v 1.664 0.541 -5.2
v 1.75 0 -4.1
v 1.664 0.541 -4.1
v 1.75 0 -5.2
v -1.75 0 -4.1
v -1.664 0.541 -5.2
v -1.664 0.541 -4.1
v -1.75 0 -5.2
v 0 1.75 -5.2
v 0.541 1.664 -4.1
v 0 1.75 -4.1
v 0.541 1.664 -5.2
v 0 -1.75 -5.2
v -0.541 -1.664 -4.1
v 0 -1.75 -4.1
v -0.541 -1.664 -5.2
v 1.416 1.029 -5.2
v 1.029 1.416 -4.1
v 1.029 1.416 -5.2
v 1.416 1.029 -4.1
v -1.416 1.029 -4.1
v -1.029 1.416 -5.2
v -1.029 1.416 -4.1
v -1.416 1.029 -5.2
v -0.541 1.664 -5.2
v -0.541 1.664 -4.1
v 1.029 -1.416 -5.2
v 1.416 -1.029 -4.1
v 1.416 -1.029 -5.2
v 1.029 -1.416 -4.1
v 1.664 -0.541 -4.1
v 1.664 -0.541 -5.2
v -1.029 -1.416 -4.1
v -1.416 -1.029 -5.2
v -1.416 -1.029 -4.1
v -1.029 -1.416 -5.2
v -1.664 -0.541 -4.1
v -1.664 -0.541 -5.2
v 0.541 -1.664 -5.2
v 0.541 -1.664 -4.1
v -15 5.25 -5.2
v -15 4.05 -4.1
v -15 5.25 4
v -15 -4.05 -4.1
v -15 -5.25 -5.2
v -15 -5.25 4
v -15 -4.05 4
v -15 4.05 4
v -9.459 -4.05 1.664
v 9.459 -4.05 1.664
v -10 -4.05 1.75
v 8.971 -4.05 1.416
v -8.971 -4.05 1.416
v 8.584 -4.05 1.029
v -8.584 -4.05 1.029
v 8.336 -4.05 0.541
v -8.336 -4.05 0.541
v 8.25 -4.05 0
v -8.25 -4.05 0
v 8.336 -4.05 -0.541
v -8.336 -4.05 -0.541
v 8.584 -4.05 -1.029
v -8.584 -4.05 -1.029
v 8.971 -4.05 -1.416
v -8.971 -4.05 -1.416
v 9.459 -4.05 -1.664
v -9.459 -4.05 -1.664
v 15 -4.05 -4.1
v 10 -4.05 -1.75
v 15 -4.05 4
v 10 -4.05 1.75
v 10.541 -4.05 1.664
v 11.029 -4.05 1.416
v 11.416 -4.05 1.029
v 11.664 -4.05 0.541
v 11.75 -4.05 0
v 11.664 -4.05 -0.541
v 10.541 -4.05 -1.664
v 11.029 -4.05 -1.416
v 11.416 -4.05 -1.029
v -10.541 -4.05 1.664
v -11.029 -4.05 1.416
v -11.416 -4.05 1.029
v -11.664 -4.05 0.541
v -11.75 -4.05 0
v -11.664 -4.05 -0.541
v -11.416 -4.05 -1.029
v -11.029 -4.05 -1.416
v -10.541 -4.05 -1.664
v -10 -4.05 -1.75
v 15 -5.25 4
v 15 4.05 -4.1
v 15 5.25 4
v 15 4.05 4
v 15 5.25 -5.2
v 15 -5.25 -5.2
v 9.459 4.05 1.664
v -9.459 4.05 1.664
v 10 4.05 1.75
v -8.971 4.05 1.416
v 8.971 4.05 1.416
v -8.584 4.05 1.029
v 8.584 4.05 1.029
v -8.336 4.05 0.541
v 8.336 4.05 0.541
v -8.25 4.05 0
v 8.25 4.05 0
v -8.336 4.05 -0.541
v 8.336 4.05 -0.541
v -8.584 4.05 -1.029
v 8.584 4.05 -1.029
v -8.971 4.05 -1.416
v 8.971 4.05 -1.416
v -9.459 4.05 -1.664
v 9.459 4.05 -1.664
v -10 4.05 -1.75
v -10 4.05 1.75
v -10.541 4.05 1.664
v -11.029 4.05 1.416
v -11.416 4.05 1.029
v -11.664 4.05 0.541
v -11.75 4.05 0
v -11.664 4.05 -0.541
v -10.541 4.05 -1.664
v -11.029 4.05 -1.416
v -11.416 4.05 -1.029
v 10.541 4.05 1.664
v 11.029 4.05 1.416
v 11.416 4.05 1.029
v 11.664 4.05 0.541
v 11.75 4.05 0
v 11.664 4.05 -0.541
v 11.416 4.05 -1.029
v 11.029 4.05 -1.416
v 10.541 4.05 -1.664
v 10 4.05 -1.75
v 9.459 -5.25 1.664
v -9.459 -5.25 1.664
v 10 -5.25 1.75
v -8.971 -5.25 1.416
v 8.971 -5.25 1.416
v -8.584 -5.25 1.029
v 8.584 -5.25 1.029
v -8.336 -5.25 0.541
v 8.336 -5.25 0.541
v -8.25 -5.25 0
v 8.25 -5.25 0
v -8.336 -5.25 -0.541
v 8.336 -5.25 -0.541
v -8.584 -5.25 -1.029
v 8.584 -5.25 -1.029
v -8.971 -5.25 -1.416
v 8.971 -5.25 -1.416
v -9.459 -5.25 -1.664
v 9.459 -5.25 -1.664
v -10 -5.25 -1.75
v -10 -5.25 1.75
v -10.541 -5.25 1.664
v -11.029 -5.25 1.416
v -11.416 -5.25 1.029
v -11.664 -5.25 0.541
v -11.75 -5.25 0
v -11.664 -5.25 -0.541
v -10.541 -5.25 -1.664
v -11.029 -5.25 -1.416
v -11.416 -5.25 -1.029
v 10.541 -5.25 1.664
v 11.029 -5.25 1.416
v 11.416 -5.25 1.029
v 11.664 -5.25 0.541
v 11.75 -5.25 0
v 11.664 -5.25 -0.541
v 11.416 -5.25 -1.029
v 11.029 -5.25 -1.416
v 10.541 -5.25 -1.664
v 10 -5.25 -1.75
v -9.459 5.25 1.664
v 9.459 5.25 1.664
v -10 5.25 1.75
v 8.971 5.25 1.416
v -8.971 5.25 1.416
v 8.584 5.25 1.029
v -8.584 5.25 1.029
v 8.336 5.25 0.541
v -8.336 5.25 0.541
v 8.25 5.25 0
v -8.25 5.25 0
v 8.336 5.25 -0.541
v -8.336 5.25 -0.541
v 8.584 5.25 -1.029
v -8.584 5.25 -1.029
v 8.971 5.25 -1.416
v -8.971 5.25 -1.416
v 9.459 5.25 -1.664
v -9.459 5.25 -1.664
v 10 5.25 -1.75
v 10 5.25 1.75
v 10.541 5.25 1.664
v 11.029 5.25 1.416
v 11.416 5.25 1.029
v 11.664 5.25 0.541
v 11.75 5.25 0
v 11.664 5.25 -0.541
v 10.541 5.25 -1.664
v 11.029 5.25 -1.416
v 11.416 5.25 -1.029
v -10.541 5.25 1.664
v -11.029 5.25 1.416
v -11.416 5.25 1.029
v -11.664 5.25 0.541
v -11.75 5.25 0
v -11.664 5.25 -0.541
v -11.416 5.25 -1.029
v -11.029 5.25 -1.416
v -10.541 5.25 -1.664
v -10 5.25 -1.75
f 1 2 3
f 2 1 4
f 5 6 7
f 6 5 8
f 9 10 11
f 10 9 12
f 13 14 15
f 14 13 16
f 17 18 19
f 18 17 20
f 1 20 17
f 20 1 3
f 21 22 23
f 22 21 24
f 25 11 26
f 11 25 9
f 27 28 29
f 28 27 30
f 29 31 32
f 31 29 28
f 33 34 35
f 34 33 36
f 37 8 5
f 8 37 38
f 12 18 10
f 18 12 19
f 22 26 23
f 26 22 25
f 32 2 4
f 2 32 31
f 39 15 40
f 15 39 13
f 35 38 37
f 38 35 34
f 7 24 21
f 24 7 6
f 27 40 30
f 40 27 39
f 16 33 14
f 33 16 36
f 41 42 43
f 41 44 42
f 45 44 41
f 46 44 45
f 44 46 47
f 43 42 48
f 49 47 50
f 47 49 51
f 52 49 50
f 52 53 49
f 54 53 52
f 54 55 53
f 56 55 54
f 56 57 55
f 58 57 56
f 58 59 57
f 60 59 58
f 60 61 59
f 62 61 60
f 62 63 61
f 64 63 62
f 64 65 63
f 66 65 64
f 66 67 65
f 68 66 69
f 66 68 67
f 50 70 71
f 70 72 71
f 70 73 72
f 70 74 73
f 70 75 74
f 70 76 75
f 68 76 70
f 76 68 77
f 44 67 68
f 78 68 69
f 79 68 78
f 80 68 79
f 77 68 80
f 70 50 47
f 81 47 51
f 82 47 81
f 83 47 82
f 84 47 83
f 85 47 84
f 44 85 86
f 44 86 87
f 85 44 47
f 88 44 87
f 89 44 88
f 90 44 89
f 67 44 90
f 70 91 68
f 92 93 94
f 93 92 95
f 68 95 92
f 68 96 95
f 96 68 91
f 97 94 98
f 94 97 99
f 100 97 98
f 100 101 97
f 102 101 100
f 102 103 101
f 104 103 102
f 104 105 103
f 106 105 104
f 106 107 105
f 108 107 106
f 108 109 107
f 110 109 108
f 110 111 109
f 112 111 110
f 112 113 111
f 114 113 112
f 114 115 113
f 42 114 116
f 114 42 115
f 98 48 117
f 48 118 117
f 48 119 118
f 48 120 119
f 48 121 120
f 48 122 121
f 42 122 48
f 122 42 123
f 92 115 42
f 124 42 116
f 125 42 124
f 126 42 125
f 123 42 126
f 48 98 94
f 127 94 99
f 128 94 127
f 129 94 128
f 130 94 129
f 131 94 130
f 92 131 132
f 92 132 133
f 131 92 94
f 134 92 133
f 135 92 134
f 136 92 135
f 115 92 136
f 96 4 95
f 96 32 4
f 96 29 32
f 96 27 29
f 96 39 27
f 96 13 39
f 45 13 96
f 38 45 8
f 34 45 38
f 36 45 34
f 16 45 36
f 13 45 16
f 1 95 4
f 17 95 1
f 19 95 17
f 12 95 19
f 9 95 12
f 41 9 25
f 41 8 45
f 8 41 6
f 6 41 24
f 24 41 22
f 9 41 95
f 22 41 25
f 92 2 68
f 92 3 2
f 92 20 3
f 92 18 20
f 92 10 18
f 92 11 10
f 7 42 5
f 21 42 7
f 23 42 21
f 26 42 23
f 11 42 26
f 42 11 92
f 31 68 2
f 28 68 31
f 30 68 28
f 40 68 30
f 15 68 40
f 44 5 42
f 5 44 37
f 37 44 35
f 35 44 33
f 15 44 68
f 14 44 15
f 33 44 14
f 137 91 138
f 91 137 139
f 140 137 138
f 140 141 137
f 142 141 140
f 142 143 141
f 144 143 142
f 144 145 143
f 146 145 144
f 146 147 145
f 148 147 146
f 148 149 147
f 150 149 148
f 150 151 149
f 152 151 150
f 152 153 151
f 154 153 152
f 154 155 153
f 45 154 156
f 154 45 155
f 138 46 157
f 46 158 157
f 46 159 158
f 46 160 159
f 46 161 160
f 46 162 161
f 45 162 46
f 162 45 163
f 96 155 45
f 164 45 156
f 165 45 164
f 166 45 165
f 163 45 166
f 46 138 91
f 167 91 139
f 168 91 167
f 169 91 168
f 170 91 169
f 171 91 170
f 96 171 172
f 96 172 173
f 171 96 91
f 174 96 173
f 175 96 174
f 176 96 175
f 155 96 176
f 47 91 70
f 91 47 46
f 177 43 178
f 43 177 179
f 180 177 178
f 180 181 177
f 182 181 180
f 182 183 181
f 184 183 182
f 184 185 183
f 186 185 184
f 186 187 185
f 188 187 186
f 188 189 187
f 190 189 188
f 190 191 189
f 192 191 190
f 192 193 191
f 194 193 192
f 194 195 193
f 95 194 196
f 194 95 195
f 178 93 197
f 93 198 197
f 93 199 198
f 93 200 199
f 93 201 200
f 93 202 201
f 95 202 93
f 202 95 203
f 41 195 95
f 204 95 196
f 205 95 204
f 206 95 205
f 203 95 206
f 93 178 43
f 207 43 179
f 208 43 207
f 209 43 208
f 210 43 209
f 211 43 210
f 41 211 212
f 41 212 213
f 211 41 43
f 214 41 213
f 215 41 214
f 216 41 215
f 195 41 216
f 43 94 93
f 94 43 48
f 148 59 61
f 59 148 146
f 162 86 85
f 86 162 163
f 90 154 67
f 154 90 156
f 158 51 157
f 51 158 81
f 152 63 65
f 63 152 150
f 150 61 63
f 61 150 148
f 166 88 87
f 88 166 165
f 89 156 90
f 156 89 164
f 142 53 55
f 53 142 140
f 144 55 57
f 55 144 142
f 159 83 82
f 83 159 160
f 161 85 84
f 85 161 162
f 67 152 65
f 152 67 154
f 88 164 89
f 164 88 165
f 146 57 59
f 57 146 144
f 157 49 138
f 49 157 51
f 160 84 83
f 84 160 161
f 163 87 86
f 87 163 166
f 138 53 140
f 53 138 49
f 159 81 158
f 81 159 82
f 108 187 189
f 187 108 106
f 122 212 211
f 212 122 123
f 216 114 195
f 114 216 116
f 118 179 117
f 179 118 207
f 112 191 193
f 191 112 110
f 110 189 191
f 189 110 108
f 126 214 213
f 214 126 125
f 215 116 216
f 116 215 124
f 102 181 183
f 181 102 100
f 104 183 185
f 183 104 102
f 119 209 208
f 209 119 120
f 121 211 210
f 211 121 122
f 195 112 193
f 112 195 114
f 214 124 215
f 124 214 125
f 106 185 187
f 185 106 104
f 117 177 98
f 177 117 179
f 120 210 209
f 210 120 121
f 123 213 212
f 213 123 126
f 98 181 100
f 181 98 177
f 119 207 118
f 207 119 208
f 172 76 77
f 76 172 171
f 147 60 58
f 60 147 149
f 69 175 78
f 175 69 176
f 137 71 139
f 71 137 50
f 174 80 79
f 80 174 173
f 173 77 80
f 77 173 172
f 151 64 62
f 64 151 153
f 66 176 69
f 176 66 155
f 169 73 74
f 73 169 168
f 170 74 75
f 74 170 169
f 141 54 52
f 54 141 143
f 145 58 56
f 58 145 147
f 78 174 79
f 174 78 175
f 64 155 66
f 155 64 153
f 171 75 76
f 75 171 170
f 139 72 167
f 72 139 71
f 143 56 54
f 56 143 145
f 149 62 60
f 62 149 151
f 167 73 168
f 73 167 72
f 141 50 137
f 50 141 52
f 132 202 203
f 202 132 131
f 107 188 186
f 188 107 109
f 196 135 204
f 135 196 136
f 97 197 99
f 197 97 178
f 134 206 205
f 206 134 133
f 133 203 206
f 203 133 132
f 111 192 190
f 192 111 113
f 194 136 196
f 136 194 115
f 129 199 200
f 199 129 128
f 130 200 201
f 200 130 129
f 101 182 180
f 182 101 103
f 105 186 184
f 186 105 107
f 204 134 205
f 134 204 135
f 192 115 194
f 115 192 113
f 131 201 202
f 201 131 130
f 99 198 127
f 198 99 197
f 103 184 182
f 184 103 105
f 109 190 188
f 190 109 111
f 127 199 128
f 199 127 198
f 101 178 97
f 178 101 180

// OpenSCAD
// file: joiner.scad
OUTER_SHAPE_WIDTH=8;
OUTER_SHAPE_HEIGHT=8;
INNER_CUBE_THICKNESS=3.5;
INNER_CUBE_LENGTH=7;

HULL_CONNECTOR_LENGTH=2;

ENTRY_ANGLE=45;
MAX_PIECE_SIZE=200;

FIT_WIDTH=0.05;
FIT_ON_MALE=1;

module male_connector()
{
    translate([INNER_CUBE_LENGTH/2,0,0]) cube([INNER_CUBE_LENGTH,INNER_CUBE_THICKNESS-FIT_ON_MALE*FIT_WIDTH,INNER_CUBE_THICKNESS-FIT_ON_MALE*FIT_WIDTH],center=true);
    translate([-MAX_PIECE_SIZE/2,0,0]) cube([MAX_PIECE_SIZE,OUTER_SHAPE_WIDTH,OUTER_SHAPE_HEIGHT],center=true);
    hull(){
    translate([INNER_CUBE_LENGTH-HULL_CONNECTOR_LENGTH/2,0,0]) color([1,0,0]) cube([HULL_CONNECTOR_LENGTH,INNER_CUBE_THICKNESS-FIT_ON_MALE*FIT_WIDTH,INNER_CUBE_THICKNESS-FIT_ON_MALE*FIT_WIDTH],center=true);
    translate([HULL_CONNECTOR_LENGTH/2,0,OUTER_SHAPE_HEIGHT/4-OUTER_SHAPE_HEIGHT/2]) color([0,1,0]) cube([HULL_CONNECTOR_LENGTH,INNER_CUBE_THICKNESS-FIT_ON_MALE*FIT_WIDTH,OUTER_SHAPE_HEIGHT/2],center=true);
    }
}

module female_connector()
{
    difference()
    {
    translate([MAX_PIECE_SIZE/2,0,0]) color([1,0,0]) cube([MAX_PIECE_SIZE,OUTER_SHAPE_WIDTH,OUTER_SHAPE_HEIGHT],center=true);
    male_connector();
    }
}
//translate([0,10,0]) male_connector();
female_connector();
// file: hex_trap.scad
function make_r_for_screw_standard(r_trap) =
((r_trap==2) ? 2.2 : (r_trap==2.5) ? 2.5 : (r_trap==3) ? 3.35 : (r_trap==4) ? 4.2 : (r_trap==6) ? 4.8 : r_trap);

function make_r_hole_for_screw_standard(r_trap) =
((r_trap==2) ? 1.1 : (r_trap==2.5) ? 1.5 : (r_trap==3) ? 1.75 : (r_trap==4) ? 2.5 : (r_trap==6) ? 3.4 : r_trap);

module low_level_hex_hole(h_trap,h_hole,local_r_trap,local_r_hole,rot)
{
    rotate([rot,0,0]) {
        translate([0,0,h_hole])
            {
                cylinder(h = h_trap, r = local_r_trap, $fn = 6);
            }
        cylinder(h = h_hole, r = local_r_hole, $fn = 20);
    }
}
module hex_hole(h_trap,h_hole,r_trap,rot)
{
    low_level_hex_hole(h_trap=h_trap,h_hole=h_hole,local_r_trap=make_r_for_screw_standard(r_trap),local_r_hole=make_r_hole_for_screw_standard(r_trap),rot=rot);
}
module hex_hole_exit(h_trap,h_hole,r_trap,rot,l_exit,rot_exit)
{
    low_level_hex_hole(h_trap=h_trap,h_hole=h_hole,local_r_trap=make_r_for_screw_standard(r_trap),local_r_hole=make_r_hole_for_screw_standard(r_trap),rot=rot);
    rotate([rot,0,0]) translate([0,make_r_for_screw_standard(r_trap),h_hole]) rotate([0,0,rot_exit]) cube([l_exit,make_r_for_screw_standard(r_trap)*2,h_trap]);
    
}
module hex_hole_exit_tunnel(h_trap,h_hole,r_trap,rot,l_exit,rot_exit,l_tunnel)
{
    rotate([rot,0,0]) {
        translate([0,0,h_trap+h_hole-1])
        {
            cylinder(h = l_tunnel, r = make_r_hole_for_screw_standard(r_trap), $fn = 20);
        }
    }
    low_level_hex_hole(h_trap=h_trap,h_hole=h_hole,local_r_trap=make_r_for_screw_standard(r_trap),local_r_hole=make_r_hole_for_screw_standard(r_trap),rot=rot);
    rotate([rot,0,0]) translate([0,(r_trap),h_hole]) rotate([0,0,rot_exit]) cube([l_exit,(r_trap)*2,h_trap]);
    
}
module hex_hole_fill_bottom(h_trap,h_hole,r_trap,r_hole,rot)
{
    
    
    local_r_trap=make_r_for_screw_standard(r_trap);
    
    
    
    rotate([rot,0,0]) {
translate([0,0,h_hole-0.3])
{
	cylinder(h = 0.3, r = local_r_trap, $fn = 6);
}

	

}
}
module hex_hole_fill_top(h_trap,h_hole,r_trap,r_hole,rot)
{
    
    
    local_r_trap=make_r_for_screw_standard(r_trap);
    rotate([rot,0,0]) {


	cylinder(h = 0.3, r = r_hole, $fn = 20);

}
}
// main file
include <main.scad>;

CORNER_LENGTH=PITCH1*1.5;
CORNER_THICK=1.2;
CORNER_HEIGHT_ADD=0.1;

module corner()
{
    //Side plate
    difference()
    {
        translate([0,-CORNER_THICK/2-BASE_THICKNESS/2-CORNER_HEIGHT_ADD/2,0]) color([1,0,0]) cube([CORNER_LENGTH,CORNER_THICK-CORNER_HEIGHT_ADD,BASE_HEIGHT+CORNER_HEIGHT_ADD],center=true);
        translate([0,-CORNER_THICK-CORNER_HEIGHT_ADD-BASE_THICKNESS/2,0]) rotate([90,0,0])hex_hole(h_trap=0,h_hole=CORNER_THICK+0.1,r_trap=SCREWSTANDARD_M3,rot=180);
        
    }
    
difference()
{
    union()
    {
        //Top plate
        translate([0,-CORNER_THICK/2,BASE_HEIGHT/2+CORNER_THICK/2+CORNER_HEIGHT_ADD/2]) color([1,0,0]) cube([CORNER_LENGTH,BASE_THICKNESS+CORNER_THICK,CORNER_THICK],center=true);
        //Bottom plate
        translate([0,-CORNER_THICK/2,-(BASE_HEIGHT/2+CORNER_THICK/2+CORNER_HEIGHT_ADD/2)]) color([1,0,0]) cube([CORNER_LENGTH,BASE_THICKNESS+CORNER_THICK,CORNER_THICK],center=true);
    }
    union()
    {
        //PITCH1 holes
        for(i=[-1,1])
        {
        color([0,0,1]) translate([i*PITCH1/2,0,BASE_HEIGHT/2+CORNER_THICK+CORNER_HEIGHT_ADD/2+0.05]) hex_hole(h_trap=0,h_hole=CORNER_THICK+0.1,r_trap=SCREWSTANDARD_M3,rot=180);
        color([0,0,1]) translate([i*PITCH1/2,0,-(BASE_HEIGHT/2+CORNER_HEIGHT_ADD/2-0.05)]) hex_hole(h_trap=0,h_hole=CORNER_THICK+0.1,r_trap=SCREWSTANDARD_M3,rot=180);    
        }
    }
}

}

//beam(length=200,width=BASE_THICKNESS,height=BASE_HEIGHT,holes1=1,holes2=1);
rotate([90,0,0]) corner();
